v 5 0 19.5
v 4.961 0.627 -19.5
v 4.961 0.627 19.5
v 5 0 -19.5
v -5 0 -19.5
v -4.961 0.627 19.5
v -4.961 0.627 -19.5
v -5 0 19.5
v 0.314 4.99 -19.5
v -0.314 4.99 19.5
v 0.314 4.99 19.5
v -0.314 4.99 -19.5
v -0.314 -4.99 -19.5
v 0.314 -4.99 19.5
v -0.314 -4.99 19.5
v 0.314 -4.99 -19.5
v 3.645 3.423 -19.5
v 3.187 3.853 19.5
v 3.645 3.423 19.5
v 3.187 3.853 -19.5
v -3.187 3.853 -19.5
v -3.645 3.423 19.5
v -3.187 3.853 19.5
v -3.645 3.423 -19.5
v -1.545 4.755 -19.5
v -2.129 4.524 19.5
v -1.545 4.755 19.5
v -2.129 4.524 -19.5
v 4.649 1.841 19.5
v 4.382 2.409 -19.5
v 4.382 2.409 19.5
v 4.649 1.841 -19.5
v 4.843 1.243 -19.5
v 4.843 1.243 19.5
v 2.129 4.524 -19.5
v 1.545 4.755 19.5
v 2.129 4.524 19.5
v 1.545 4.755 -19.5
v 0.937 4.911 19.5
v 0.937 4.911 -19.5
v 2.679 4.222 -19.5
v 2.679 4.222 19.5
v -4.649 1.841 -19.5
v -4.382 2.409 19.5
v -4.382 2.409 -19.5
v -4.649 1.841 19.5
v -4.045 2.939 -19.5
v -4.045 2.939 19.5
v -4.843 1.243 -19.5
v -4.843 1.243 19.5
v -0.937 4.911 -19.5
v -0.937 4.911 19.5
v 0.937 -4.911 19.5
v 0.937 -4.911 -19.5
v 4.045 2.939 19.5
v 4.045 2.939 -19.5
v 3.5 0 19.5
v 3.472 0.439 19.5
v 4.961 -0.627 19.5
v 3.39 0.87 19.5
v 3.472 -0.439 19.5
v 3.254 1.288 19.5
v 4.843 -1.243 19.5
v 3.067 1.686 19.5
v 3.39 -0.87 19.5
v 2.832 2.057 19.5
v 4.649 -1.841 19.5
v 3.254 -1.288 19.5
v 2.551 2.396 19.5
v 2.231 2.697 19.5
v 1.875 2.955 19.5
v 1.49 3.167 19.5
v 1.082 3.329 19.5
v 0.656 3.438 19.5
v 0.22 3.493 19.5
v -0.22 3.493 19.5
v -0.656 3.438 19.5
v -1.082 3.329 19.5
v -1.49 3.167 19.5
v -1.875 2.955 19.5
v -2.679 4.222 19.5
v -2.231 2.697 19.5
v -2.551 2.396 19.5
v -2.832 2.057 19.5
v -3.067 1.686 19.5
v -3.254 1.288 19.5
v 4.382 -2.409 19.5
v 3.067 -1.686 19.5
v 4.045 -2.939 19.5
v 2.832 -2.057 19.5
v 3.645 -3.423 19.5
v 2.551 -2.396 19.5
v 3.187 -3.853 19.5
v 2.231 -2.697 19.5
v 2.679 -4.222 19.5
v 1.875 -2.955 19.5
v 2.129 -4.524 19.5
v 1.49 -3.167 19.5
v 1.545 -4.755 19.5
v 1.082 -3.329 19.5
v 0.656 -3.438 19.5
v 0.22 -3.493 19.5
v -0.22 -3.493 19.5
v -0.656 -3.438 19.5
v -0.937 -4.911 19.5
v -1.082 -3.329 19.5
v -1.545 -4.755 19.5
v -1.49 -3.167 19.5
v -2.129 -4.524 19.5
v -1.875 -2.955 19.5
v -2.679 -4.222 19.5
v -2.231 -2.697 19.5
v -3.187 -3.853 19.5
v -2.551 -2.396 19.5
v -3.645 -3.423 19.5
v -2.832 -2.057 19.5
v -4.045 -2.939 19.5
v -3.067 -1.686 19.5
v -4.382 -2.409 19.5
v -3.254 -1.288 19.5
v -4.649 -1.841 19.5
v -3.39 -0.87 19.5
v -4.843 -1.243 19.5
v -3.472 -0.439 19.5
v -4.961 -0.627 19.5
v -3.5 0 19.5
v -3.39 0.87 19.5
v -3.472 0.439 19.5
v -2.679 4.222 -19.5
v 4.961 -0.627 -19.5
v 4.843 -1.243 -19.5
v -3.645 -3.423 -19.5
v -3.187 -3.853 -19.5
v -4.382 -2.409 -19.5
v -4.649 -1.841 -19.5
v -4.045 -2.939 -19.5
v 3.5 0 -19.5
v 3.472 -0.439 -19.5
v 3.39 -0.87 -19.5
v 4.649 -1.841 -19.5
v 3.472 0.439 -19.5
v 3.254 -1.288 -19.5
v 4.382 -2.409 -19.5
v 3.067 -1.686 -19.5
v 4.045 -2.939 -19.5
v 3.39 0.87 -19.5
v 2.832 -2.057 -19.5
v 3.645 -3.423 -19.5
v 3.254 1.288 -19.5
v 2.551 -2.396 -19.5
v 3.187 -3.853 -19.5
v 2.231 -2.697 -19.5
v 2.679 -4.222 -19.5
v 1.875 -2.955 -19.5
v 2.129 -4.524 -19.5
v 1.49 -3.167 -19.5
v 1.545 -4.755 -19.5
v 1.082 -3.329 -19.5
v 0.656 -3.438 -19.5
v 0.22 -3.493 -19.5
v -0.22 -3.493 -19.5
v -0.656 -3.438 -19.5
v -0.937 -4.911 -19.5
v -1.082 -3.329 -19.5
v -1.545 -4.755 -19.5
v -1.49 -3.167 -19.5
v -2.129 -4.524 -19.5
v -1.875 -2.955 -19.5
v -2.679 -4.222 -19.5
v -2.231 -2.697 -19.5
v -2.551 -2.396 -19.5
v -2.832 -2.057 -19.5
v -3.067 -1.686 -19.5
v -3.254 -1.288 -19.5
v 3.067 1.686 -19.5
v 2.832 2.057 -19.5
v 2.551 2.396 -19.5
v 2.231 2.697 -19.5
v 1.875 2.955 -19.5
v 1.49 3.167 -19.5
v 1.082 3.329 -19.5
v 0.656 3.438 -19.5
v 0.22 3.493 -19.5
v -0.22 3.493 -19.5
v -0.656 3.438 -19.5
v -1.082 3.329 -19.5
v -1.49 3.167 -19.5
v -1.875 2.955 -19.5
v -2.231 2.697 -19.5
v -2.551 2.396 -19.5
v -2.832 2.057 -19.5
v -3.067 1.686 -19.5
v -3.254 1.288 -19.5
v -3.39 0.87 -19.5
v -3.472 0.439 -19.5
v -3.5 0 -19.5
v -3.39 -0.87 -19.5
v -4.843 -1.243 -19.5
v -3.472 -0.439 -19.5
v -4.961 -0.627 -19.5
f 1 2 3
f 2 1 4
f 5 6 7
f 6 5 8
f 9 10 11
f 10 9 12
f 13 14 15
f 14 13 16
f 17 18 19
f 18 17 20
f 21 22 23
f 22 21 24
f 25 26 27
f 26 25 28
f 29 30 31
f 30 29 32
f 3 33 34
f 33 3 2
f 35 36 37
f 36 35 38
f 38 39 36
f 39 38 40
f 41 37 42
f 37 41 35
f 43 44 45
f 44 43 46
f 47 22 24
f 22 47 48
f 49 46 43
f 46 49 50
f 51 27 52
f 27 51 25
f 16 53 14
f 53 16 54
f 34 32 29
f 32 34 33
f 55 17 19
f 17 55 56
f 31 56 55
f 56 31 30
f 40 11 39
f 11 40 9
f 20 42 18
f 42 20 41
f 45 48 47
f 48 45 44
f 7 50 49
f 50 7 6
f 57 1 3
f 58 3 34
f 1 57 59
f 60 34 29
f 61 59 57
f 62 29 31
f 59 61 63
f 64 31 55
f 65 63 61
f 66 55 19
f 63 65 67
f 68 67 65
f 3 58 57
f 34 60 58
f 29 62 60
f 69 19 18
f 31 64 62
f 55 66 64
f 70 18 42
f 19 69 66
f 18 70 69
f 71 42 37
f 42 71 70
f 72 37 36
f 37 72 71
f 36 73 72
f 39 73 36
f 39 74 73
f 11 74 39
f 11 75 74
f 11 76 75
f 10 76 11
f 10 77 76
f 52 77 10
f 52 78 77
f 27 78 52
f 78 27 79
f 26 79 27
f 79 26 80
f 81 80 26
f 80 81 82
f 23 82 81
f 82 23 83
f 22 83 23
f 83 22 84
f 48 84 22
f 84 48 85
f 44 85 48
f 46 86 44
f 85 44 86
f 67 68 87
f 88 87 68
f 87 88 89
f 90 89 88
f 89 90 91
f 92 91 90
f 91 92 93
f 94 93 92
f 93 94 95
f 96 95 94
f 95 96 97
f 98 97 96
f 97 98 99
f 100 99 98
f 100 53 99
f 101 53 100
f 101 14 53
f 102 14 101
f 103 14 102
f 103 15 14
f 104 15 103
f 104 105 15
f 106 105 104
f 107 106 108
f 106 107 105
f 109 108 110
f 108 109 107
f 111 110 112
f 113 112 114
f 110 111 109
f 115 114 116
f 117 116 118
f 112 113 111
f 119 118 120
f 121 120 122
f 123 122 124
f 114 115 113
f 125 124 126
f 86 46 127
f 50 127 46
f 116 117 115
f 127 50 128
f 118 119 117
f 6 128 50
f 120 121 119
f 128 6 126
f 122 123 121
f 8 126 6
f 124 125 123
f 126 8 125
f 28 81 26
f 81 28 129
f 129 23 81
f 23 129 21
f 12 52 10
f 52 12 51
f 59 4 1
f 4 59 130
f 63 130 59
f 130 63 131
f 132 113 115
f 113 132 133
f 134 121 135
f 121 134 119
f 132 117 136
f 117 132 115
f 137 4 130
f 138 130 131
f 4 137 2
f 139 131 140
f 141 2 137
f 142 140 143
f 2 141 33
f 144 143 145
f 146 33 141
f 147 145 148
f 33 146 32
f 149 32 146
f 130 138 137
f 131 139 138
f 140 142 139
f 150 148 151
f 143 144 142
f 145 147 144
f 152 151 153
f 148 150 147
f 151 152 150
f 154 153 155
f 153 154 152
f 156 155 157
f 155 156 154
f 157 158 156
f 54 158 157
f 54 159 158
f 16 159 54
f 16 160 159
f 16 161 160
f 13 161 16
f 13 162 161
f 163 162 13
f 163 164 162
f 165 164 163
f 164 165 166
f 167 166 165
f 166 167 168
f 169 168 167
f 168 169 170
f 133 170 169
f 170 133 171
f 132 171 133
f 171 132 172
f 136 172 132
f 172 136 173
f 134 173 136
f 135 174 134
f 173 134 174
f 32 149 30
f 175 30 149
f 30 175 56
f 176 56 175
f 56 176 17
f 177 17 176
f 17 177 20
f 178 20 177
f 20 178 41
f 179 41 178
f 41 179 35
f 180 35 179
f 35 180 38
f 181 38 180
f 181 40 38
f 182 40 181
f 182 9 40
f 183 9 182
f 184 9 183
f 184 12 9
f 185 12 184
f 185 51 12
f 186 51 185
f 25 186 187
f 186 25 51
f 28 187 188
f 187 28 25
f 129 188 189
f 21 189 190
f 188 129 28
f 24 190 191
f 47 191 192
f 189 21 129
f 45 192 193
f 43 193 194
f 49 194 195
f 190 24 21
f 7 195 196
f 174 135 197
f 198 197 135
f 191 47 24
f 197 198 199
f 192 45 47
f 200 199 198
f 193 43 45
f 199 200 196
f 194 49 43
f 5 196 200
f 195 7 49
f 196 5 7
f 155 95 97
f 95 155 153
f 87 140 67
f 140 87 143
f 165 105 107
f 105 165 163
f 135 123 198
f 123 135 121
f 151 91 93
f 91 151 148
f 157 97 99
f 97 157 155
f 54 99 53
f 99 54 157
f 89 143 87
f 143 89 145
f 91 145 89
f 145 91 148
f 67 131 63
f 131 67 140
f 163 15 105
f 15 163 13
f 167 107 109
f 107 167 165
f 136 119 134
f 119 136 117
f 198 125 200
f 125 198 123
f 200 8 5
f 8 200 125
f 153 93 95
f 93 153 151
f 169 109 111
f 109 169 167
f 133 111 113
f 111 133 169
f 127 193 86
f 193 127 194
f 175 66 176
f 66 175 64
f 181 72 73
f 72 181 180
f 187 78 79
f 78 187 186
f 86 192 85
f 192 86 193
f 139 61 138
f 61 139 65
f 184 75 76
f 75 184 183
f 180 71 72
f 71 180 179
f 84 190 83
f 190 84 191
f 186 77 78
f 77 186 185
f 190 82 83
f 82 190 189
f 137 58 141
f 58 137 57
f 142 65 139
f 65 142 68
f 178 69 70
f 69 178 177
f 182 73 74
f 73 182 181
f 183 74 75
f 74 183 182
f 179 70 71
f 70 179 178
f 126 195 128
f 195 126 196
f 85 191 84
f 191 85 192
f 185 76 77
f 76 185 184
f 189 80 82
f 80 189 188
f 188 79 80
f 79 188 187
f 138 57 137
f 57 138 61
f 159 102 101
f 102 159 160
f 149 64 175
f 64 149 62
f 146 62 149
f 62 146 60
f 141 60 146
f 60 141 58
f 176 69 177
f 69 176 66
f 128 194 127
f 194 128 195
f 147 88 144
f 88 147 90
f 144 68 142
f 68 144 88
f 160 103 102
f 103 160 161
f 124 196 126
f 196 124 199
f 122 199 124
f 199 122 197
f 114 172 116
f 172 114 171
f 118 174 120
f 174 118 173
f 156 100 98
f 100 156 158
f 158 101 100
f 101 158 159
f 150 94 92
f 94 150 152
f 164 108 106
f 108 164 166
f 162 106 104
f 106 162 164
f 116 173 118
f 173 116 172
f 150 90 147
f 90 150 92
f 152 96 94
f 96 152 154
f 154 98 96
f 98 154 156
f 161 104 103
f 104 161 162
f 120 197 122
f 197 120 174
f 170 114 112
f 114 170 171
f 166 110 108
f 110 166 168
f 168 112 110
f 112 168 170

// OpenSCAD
$fn = 50;


difference() {
	union() {
		translate(v = [0, 0, -19.5000000000]) {
			cylinder(h = 39, r = 5.0000000000);
		}
	}
	union() {
		translate(v = [0, 0, -100.0000000000]) {
			cylinder(h = 200, r = 3.5000000000);
		}
	}
}
